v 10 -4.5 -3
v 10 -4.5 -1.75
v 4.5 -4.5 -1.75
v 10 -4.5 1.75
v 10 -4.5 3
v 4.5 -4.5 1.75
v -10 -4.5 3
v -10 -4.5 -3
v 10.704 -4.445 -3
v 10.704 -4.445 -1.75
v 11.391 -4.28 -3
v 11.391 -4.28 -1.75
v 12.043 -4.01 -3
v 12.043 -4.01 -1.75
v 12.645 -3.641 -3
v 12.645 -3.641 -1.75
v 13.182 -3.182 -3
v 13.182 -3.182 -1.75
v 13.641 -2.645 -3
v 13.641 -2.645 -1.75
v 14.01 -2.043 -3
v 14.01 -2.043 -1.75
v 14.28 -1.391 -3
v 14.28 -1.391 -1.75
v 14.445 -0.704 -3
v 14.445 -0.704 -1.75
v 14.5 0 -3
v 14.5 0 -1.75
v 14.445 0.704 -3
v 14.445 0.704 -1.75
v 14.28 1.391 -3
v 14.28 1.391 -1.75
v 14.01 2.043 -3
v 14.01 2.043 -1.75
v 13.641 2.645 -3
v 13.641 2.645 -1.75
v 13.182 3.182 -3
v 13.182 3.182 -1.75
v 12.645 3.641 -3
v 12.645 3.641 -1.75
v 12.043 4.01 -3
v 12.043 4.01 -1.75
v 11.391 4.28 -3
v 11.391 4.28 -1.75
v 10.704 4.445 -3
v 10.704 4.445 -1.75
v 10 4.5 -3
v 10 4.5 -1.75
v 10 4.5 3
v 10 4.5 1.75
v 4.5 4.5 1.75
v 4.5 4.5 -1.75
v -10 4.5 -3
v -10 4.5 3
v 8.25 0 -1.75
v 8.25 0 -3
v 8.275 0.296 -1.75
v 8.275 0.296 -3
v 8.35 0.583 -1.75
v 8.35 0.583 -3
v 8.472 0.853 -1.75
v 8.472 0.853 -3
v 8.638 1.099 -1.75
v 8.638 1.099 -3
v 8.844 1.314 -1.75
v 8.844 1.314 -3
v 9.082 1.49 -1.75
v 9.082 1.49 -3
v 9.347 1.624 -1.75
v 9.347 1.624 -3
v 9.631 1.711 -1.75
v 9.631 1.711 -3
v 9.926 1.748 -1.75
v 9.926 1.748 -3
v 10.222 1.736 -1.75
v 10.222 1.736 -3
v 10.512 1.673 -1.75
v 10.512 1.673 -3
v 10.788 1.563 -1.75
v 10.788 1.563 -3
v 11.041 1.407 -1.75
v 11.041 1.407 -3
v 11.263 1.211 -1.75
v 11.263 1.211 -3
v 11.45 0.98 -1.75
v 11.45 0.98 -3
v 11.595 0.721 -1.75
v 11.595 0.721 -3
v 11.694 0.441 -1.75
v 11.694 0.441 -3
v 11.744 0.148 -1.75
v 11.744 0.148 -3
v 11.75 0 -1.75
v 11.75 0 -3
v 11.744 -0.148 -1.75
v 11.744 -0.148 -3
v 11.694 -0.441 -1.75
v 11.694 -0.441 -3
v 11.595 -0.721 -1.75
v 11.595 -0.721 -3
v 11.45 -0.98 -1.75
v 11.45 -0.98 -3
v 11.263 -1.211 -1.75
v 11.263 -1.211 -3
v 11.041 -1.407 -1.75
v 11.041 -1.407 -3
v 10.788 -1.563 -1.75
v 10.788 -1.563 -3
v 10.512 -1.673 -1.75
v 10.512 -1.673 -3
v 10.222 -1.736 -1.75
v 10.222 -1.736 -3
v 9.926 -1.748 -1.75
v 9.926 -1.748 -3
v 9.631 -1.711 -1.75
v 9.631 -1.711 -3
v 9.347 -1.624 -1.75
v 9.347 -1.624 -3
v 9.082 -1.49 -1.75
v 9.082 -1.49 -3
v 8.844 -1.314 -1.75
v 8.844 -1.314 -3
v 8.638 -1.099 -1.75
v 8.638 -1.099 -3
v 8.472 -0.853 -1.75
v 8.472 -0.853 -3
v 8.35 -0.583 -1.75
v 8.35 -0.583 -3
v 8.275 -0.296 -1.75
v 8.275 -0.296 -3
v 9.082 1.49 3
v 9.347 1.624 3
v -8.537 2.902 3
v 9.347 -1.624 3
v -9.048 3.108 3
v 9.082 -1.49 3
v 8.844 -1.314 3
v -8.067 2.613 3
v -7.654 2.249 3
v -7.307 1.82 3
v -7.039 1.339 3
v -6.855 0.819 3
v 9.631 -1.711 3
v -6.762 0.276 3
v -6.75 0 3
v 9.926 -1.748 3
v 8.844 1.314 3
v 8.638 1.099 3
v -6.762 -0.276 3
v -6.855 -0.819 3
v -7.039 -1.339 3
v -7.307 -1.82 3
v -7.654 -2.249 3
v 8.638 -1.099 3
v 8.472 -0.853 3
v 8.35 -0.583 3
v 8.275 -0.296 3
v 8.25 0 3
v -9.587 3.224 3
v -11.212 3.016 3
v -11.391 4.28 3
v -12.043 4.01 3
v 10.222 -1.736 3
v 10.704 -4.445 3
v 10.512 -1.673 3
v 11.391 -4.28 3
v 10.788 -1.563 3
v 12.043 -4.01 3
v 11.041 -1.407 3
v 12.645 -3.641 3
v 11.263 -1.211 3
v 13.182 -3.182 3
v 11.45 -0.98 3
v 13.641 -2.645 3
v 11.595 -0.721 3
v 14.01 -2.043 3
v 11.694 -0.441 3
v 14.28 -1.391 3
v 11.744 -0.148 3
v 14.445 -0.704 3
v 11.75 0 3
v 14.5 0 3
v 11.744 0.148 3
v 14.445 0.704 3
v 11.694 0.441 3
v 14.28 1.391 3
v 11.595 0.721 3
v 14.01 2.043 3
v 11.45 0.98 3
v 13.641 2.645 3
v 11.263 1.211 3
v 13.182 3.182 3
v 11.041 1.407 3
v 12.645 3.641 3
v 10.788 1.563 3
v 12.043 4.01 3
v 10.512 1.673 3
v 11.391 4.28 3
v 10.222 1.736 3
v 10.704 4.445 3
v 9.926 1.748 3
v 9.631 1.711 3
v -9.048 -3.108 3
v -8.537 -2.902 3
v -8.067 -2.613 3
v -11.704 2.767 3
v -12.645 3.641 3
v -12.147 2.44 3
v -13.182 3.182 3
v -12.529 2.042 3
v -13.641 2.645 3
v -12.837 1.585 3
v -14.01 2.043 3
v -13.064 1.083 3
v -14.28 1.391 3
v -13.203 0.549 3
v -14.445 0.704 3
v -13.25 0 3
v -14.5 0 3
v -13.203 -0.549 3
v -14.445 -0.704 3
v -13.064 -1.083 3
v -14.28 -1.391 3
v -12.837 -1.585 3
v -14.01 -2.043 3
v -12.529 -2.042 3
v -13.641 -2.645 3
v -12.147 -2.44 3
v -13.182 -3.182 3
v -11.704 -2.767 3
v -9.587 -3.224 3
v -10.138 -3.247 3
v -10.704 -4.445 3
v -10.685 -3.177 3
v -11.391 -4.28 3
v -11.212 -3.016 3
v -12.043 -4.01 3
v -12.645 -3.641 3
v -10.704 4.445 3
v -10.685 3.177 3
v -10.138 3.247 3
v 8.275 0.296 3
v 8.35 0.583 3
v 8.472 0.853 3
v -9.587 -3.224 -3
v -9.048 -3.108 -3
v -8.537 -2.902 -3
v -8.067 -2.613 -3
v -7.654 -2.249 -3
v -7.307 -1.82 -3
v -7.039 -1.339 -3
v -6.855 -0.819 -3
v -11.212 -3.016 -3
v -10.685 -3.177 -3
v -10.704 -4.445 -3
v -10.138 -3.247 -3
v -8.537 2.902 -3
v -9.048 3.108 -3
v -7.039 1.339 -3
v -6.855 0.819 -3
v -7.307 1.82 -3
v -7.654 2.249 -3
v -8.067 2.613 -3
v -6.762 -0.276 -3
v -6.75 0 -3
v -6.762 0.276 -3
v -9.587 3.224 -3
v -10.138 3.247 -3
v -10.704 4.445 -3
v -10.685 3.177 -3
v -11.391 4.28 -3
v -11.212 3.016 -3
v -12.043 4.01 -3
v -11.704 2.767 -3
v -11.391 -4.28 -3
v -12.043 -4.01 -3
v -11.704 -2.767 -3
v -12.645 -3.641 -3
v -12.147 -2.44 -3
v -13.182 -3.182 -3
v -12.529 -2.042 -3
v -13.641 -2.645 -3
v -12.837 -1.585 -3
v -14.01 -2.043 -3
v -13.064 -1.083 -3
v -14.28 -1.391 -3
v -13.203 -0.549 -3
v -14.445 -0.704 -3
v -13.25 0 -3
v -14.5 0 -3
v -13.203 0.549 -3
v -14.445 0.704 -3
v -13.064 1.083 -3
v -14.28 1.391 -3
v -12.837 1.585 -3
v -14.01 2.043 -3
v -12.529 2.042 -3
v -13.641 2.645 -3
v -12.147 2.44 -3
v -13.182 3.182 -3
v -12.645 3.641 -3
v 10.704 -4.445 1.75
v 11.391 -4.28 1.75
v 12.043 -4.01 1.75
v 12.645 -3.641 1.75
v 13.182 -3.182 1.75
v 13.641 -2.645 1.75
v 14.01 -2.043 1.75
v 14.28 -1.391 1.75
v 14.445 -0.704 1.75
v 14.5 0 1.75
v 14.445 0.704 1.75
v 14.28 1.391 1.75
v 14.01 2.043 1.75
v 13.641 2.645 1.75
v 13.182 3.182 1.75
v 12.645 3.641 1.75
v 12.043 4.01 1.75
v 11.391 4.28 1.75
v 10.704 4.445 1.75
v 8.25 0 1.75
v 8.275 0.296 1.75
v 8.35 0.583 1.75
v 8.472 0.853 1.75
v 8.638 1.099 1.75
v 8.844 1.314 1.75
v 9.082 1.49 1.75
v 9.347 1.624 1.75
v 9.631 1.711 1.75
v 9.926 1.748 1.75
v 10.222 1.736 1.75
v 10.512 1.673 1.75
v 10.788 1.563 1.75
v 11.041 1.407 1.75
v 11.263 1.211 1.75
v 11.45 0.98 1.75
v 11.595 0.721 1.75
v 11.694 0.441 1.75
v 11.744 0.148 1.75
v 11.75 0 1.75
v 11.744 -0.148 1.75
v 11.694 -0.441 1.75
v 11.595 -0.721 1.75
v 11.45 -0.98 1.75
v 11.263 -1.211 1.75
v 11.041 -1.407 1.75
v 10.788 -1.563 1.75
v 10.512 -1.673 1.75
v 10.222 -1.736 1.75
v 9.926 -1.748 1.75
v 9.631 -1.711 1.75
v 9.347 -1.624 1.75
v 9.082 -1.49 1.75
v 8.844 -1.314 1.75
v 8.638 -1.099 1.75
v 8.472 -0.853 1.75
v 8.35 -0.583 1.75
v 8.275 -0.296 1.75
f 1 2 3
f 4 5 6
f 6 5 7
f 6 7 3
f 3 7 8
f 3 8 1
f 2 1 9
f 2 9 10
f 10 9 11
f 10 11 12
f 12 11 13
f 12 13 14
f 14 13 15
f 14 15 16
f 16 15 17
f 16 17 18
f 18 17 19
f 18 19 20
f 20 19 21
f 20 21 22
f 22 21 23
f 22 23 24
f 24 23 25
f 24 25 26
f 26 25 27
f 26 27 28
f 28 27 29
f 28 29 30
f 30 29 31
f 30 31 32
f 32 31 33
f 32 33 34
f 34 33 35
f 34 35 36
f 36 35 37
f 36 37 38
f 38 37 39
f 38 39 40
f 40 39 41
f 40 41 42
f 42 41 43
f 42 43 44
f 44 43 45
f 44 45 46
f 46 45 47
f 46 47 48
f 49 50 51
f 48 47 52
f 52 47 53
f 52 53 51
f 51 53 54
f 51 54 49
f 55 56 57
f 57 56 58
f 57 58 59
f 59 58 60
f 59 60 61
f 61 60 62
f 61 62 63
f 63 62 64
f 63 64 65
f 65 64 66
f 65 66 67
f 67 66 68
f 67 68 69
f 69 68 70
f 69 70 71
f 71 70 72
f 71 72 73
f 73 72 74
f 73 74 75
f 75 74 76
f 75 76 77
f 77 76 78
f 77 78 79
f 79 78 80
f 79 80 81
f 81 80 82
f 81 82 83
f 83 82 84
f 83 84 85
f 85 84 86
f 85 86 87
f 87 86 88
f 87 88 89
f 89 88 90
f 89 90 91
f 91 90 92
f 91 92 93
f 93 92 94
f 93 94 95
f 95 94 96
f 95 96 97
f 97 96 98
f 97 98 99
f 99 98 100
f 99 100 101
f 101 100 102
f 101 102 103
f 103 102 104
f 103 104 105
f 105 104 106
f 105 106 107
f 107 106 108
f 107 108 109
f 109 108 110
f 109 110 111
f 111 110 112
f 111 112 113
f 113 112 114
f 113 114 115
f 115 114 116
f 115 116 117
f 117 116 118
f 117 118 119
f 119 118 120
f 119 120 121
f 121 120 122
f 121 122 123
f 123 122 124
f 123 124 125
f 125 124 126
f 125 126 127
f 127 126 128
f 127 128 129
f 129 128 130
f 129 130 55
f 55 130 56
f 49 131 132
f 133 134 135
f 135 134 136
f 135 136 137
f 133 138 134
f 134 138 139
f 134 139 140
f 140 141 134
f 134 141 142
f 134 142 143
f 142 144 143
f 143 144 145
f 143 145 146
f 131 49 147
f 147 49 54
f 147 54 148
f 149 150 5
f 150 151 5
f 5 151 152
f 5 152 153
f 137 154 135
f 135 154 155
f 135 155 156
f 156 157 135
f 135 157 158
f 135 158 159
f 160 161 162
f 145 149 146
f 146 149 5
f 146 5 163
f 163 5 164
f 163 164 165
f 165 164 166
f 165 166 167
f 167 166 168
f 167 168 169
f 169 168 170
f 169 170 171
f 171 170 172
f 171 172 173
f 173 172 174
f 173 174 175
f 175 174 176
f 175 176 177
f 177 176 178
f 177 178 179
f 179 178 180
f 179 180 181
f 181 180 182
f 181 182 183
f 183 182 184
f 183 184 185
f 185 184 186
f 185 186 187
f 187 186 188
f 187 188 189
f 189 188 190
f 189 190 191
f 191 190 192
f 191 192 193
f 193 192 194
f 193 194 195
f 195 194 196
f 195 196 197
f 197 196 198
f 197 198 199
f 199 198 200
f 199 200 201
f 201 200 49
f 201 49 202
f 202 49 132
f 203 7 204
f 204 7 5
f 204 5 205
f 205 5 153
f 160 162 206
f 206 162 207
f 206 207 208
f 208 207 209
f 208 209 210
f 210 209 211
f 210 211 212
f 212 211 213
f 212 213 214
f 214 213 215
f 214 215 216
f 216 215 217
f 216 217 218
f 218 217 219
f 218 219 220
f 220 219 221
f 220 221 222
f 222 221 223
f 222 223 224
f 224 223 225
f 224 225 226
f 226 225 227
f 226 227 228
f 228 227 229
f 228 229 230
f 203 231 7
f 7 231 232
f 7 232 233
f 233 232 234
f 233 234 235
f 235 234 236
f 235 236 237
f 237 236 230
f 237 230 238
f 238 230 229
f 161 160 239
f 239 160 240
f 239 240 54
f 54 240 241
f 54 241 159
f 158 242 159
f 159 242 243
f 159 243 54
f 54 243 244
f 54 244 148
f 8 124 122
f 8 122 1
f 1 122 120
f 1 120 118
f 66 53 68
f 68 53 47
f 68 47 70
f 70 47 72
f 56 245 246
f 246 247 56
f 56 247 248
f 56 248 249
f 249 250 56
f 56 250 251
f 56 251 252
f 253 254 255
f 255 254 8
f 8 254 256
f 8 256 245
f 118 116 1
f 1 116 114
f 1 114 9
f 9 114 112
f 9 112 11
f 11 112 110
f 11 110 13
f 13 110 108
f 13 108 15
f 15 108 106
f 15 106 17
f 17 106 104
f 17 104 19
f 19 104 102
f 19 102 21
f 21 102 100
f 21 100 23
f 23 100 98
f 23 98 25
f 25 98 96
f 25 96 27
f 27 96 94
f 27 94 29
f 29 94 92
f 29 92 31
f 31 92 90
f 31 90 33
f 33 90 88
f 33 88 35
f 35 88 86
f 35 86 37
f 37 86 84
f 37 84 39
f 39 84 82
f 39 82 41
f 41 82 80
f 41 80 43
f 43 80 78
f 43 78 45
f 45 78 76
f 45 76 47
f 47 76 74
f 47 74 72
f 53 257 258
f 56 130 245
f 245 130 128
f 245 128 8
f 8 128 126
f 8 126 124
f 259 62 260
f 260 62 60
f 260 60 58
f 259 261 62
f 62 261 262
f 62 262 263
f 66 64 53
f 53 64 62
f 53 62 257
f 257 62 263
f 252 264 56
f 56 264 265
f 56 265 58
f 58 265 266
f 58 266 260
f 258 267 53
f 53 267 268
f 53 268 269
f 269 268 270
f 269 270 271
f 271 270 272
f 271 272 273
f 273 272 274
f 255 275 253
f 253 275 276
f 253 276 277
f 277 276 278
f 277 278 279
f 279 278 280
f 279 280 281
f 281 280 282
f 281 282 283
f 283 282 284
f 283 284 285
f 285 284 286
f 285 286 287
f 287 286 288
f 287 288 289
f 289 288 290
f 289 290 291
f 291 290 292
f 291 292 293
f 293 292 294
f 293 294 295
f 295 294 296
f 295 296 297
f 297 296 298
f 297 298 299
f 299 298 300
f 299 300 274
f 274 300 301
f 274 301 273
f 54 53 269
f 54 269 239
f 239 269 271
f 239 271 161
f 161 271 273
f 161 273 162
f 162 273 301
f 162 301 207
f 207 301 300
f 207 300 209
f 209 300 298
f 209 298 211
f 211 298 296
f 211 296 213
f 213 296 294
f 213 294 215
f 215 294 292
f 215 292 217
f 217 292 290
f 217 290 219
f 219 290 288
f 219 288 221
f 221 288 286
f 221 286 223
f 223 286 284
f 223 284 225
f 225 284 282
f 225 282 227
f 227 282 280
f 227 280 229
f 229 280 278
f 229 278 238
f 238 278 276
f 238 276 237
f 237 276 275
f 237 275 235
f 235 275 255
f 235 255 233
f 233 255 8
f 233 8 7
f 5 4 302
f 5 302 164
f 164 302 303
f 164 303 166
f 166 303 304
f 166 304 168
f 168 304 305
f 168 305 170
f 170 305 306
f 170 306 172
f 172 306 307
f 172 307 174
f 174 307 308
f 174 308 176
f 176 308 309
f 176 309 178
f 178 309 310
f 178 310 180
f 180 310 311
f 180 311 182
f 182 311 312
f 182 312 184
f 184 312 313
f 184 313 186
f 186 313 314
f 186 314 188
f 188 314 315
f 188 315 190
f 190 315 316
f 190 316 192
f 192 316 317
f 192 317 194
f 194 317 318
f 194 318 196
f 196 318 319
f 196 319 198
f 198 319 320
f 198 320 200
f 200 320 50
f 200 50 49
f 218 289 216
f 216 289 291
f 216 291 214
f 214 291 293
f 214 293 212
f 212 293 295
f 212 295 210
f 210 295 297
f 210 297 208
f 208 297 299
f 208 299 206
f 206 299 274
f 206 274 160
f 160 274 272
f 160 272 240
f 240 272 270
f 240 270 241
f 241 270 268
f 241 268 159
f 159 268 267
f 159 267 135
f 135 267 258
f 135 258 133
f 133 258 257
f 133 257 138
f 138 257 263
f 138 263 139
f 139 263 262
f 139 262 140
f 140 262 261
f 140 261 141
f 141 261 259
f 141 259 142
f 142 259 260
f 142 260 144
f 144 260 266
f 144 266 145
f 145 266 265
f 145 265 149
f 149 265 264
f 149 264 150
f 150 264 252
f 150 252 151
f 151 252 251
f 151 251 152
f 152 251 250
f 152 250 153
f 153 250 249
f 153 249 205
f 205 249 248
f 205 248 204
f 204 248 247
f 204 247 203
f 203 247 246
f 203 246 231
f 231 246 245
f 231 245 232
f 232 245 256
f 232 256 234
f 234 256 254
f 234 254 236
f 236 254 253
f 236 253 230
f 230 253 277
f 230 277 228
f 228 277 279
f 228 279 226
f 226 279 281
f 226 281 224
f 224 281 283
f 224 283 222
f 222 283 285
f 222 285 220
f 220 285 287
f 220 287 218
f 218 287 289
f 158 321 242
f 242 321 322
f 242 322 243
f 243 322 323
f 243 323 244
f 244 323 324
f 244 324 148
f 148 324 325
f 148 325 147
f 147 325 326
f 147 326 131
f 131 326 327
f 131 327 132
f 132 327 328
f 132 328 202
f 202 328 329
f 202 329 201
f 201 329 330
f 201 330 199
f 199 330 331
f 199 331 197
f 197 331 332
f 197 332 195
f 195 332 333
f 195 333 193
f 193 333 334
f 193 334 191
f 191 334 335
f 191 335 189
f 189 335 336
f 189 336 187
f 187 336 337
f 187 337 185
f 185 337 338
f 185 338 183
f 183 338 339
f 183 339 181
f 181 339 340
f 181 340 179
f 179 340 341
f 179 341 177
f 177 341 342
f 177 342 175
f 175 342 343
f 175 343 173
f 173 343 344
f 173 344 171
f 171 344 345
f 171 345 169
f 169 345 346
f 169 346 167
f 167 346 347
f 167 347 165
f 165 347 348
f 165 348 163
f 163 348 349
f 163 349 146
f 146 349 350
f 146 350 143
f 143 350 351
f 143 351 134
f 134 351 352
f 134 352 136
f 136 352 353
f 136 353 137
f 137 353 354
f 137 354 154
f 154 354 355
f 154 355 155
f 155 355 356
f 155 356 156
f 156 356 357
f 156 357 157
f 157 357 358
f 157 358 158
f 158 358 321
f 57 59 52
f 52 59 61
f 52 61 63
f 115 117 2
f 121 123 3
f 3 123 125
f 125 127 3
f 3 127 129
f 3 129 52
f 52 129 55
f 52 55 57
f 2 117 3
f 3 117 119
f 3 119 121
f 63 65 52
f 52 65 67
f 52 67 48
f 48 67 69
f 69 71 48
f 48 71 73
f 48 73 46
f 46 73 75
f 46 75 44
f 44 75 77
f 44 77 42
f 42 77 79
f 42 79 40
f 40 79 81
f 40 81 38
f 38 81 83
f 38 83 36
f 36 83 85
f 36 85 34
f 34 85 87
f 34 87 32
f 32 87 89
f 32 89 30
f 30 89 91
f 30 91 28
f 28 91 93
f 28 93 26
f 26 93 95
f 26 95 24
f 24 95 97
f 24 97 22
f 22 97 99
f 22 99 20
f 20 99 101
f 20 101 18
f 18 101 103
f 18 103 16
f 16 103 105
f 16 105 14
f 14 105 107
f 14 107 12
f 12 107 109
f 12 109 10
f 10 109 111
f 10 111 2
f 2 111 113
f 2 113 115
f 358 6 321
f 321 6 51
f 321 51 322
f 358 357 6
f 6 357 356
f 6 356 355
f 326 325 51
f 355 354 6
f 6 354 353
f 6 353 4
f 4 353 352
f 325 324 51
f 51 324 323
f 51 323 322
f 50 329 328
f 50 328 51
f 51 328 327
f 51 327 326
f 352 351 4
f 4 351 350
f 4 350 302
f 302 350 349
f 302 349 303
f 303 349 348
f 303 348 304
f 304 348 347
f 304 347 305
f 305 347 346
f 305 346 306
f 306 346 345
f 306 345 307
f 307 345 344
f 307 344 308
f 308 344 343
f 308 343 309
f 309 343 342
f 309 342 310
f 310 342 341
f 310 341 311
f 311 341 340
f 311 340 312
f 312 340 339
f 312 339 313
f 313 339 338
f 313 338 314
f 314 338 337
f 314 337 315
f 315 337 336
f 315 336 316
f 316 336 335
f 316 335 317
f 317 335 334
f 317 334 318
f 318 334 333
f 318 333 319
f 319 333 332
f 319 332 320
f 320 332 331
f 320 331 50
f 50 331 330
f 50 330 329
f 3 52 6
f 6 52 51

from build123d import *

# Parameters (mm, degrees)
SKETCH1_R           = 3.25
SKETCH1_R_2         = 1.75
BOSS_EXTRUDE1_DEPTH = 3
SKETCH5_W           = 10
SKETCH5_H           = 9
CUT_EXTRUDE1_DEPTH  = 1.75


with BuildPart() as part:
    # Sketch1 → Boss-Extrude1 (new, symmetric)
    with BuildSketch(Plane.XY):
        with BuildLine():
            Line((-10, 4.5), (10, 4.5))
            ThreePointArc((10, 4.5), (14.5, 0), (10, -4.5))
            Line((10, -4.5), (-10, -4.5))
            ThreePointArc((-10, -4.5), (-14.5, 0), (-10, 4.5))
        make_face()
        with Locations((-10, 0)):
            Circle(SKETCH1_R, mode=Mode.SUBTRACT)
        with Locations((10, 0)):
            Circle(SKETCH1_R_2, mode=Mode.SUBTRACT)
    extrude(amount=BOSS_EXTRUDE1_DEPTH, both=True)

    # Sketch5 → Cut-Extrude1 (cut, symmetric)
    with BuildSketch(Plane.XY):
        with Locations((9.5, 0)):
            Rectangle(SKETCH5_W, SKETCH5_H)
    extrude(amount=CUT_EXTRUDE1_DEPTH, both=True, mode=Mode.SUBTRACT)


solid = part.part
